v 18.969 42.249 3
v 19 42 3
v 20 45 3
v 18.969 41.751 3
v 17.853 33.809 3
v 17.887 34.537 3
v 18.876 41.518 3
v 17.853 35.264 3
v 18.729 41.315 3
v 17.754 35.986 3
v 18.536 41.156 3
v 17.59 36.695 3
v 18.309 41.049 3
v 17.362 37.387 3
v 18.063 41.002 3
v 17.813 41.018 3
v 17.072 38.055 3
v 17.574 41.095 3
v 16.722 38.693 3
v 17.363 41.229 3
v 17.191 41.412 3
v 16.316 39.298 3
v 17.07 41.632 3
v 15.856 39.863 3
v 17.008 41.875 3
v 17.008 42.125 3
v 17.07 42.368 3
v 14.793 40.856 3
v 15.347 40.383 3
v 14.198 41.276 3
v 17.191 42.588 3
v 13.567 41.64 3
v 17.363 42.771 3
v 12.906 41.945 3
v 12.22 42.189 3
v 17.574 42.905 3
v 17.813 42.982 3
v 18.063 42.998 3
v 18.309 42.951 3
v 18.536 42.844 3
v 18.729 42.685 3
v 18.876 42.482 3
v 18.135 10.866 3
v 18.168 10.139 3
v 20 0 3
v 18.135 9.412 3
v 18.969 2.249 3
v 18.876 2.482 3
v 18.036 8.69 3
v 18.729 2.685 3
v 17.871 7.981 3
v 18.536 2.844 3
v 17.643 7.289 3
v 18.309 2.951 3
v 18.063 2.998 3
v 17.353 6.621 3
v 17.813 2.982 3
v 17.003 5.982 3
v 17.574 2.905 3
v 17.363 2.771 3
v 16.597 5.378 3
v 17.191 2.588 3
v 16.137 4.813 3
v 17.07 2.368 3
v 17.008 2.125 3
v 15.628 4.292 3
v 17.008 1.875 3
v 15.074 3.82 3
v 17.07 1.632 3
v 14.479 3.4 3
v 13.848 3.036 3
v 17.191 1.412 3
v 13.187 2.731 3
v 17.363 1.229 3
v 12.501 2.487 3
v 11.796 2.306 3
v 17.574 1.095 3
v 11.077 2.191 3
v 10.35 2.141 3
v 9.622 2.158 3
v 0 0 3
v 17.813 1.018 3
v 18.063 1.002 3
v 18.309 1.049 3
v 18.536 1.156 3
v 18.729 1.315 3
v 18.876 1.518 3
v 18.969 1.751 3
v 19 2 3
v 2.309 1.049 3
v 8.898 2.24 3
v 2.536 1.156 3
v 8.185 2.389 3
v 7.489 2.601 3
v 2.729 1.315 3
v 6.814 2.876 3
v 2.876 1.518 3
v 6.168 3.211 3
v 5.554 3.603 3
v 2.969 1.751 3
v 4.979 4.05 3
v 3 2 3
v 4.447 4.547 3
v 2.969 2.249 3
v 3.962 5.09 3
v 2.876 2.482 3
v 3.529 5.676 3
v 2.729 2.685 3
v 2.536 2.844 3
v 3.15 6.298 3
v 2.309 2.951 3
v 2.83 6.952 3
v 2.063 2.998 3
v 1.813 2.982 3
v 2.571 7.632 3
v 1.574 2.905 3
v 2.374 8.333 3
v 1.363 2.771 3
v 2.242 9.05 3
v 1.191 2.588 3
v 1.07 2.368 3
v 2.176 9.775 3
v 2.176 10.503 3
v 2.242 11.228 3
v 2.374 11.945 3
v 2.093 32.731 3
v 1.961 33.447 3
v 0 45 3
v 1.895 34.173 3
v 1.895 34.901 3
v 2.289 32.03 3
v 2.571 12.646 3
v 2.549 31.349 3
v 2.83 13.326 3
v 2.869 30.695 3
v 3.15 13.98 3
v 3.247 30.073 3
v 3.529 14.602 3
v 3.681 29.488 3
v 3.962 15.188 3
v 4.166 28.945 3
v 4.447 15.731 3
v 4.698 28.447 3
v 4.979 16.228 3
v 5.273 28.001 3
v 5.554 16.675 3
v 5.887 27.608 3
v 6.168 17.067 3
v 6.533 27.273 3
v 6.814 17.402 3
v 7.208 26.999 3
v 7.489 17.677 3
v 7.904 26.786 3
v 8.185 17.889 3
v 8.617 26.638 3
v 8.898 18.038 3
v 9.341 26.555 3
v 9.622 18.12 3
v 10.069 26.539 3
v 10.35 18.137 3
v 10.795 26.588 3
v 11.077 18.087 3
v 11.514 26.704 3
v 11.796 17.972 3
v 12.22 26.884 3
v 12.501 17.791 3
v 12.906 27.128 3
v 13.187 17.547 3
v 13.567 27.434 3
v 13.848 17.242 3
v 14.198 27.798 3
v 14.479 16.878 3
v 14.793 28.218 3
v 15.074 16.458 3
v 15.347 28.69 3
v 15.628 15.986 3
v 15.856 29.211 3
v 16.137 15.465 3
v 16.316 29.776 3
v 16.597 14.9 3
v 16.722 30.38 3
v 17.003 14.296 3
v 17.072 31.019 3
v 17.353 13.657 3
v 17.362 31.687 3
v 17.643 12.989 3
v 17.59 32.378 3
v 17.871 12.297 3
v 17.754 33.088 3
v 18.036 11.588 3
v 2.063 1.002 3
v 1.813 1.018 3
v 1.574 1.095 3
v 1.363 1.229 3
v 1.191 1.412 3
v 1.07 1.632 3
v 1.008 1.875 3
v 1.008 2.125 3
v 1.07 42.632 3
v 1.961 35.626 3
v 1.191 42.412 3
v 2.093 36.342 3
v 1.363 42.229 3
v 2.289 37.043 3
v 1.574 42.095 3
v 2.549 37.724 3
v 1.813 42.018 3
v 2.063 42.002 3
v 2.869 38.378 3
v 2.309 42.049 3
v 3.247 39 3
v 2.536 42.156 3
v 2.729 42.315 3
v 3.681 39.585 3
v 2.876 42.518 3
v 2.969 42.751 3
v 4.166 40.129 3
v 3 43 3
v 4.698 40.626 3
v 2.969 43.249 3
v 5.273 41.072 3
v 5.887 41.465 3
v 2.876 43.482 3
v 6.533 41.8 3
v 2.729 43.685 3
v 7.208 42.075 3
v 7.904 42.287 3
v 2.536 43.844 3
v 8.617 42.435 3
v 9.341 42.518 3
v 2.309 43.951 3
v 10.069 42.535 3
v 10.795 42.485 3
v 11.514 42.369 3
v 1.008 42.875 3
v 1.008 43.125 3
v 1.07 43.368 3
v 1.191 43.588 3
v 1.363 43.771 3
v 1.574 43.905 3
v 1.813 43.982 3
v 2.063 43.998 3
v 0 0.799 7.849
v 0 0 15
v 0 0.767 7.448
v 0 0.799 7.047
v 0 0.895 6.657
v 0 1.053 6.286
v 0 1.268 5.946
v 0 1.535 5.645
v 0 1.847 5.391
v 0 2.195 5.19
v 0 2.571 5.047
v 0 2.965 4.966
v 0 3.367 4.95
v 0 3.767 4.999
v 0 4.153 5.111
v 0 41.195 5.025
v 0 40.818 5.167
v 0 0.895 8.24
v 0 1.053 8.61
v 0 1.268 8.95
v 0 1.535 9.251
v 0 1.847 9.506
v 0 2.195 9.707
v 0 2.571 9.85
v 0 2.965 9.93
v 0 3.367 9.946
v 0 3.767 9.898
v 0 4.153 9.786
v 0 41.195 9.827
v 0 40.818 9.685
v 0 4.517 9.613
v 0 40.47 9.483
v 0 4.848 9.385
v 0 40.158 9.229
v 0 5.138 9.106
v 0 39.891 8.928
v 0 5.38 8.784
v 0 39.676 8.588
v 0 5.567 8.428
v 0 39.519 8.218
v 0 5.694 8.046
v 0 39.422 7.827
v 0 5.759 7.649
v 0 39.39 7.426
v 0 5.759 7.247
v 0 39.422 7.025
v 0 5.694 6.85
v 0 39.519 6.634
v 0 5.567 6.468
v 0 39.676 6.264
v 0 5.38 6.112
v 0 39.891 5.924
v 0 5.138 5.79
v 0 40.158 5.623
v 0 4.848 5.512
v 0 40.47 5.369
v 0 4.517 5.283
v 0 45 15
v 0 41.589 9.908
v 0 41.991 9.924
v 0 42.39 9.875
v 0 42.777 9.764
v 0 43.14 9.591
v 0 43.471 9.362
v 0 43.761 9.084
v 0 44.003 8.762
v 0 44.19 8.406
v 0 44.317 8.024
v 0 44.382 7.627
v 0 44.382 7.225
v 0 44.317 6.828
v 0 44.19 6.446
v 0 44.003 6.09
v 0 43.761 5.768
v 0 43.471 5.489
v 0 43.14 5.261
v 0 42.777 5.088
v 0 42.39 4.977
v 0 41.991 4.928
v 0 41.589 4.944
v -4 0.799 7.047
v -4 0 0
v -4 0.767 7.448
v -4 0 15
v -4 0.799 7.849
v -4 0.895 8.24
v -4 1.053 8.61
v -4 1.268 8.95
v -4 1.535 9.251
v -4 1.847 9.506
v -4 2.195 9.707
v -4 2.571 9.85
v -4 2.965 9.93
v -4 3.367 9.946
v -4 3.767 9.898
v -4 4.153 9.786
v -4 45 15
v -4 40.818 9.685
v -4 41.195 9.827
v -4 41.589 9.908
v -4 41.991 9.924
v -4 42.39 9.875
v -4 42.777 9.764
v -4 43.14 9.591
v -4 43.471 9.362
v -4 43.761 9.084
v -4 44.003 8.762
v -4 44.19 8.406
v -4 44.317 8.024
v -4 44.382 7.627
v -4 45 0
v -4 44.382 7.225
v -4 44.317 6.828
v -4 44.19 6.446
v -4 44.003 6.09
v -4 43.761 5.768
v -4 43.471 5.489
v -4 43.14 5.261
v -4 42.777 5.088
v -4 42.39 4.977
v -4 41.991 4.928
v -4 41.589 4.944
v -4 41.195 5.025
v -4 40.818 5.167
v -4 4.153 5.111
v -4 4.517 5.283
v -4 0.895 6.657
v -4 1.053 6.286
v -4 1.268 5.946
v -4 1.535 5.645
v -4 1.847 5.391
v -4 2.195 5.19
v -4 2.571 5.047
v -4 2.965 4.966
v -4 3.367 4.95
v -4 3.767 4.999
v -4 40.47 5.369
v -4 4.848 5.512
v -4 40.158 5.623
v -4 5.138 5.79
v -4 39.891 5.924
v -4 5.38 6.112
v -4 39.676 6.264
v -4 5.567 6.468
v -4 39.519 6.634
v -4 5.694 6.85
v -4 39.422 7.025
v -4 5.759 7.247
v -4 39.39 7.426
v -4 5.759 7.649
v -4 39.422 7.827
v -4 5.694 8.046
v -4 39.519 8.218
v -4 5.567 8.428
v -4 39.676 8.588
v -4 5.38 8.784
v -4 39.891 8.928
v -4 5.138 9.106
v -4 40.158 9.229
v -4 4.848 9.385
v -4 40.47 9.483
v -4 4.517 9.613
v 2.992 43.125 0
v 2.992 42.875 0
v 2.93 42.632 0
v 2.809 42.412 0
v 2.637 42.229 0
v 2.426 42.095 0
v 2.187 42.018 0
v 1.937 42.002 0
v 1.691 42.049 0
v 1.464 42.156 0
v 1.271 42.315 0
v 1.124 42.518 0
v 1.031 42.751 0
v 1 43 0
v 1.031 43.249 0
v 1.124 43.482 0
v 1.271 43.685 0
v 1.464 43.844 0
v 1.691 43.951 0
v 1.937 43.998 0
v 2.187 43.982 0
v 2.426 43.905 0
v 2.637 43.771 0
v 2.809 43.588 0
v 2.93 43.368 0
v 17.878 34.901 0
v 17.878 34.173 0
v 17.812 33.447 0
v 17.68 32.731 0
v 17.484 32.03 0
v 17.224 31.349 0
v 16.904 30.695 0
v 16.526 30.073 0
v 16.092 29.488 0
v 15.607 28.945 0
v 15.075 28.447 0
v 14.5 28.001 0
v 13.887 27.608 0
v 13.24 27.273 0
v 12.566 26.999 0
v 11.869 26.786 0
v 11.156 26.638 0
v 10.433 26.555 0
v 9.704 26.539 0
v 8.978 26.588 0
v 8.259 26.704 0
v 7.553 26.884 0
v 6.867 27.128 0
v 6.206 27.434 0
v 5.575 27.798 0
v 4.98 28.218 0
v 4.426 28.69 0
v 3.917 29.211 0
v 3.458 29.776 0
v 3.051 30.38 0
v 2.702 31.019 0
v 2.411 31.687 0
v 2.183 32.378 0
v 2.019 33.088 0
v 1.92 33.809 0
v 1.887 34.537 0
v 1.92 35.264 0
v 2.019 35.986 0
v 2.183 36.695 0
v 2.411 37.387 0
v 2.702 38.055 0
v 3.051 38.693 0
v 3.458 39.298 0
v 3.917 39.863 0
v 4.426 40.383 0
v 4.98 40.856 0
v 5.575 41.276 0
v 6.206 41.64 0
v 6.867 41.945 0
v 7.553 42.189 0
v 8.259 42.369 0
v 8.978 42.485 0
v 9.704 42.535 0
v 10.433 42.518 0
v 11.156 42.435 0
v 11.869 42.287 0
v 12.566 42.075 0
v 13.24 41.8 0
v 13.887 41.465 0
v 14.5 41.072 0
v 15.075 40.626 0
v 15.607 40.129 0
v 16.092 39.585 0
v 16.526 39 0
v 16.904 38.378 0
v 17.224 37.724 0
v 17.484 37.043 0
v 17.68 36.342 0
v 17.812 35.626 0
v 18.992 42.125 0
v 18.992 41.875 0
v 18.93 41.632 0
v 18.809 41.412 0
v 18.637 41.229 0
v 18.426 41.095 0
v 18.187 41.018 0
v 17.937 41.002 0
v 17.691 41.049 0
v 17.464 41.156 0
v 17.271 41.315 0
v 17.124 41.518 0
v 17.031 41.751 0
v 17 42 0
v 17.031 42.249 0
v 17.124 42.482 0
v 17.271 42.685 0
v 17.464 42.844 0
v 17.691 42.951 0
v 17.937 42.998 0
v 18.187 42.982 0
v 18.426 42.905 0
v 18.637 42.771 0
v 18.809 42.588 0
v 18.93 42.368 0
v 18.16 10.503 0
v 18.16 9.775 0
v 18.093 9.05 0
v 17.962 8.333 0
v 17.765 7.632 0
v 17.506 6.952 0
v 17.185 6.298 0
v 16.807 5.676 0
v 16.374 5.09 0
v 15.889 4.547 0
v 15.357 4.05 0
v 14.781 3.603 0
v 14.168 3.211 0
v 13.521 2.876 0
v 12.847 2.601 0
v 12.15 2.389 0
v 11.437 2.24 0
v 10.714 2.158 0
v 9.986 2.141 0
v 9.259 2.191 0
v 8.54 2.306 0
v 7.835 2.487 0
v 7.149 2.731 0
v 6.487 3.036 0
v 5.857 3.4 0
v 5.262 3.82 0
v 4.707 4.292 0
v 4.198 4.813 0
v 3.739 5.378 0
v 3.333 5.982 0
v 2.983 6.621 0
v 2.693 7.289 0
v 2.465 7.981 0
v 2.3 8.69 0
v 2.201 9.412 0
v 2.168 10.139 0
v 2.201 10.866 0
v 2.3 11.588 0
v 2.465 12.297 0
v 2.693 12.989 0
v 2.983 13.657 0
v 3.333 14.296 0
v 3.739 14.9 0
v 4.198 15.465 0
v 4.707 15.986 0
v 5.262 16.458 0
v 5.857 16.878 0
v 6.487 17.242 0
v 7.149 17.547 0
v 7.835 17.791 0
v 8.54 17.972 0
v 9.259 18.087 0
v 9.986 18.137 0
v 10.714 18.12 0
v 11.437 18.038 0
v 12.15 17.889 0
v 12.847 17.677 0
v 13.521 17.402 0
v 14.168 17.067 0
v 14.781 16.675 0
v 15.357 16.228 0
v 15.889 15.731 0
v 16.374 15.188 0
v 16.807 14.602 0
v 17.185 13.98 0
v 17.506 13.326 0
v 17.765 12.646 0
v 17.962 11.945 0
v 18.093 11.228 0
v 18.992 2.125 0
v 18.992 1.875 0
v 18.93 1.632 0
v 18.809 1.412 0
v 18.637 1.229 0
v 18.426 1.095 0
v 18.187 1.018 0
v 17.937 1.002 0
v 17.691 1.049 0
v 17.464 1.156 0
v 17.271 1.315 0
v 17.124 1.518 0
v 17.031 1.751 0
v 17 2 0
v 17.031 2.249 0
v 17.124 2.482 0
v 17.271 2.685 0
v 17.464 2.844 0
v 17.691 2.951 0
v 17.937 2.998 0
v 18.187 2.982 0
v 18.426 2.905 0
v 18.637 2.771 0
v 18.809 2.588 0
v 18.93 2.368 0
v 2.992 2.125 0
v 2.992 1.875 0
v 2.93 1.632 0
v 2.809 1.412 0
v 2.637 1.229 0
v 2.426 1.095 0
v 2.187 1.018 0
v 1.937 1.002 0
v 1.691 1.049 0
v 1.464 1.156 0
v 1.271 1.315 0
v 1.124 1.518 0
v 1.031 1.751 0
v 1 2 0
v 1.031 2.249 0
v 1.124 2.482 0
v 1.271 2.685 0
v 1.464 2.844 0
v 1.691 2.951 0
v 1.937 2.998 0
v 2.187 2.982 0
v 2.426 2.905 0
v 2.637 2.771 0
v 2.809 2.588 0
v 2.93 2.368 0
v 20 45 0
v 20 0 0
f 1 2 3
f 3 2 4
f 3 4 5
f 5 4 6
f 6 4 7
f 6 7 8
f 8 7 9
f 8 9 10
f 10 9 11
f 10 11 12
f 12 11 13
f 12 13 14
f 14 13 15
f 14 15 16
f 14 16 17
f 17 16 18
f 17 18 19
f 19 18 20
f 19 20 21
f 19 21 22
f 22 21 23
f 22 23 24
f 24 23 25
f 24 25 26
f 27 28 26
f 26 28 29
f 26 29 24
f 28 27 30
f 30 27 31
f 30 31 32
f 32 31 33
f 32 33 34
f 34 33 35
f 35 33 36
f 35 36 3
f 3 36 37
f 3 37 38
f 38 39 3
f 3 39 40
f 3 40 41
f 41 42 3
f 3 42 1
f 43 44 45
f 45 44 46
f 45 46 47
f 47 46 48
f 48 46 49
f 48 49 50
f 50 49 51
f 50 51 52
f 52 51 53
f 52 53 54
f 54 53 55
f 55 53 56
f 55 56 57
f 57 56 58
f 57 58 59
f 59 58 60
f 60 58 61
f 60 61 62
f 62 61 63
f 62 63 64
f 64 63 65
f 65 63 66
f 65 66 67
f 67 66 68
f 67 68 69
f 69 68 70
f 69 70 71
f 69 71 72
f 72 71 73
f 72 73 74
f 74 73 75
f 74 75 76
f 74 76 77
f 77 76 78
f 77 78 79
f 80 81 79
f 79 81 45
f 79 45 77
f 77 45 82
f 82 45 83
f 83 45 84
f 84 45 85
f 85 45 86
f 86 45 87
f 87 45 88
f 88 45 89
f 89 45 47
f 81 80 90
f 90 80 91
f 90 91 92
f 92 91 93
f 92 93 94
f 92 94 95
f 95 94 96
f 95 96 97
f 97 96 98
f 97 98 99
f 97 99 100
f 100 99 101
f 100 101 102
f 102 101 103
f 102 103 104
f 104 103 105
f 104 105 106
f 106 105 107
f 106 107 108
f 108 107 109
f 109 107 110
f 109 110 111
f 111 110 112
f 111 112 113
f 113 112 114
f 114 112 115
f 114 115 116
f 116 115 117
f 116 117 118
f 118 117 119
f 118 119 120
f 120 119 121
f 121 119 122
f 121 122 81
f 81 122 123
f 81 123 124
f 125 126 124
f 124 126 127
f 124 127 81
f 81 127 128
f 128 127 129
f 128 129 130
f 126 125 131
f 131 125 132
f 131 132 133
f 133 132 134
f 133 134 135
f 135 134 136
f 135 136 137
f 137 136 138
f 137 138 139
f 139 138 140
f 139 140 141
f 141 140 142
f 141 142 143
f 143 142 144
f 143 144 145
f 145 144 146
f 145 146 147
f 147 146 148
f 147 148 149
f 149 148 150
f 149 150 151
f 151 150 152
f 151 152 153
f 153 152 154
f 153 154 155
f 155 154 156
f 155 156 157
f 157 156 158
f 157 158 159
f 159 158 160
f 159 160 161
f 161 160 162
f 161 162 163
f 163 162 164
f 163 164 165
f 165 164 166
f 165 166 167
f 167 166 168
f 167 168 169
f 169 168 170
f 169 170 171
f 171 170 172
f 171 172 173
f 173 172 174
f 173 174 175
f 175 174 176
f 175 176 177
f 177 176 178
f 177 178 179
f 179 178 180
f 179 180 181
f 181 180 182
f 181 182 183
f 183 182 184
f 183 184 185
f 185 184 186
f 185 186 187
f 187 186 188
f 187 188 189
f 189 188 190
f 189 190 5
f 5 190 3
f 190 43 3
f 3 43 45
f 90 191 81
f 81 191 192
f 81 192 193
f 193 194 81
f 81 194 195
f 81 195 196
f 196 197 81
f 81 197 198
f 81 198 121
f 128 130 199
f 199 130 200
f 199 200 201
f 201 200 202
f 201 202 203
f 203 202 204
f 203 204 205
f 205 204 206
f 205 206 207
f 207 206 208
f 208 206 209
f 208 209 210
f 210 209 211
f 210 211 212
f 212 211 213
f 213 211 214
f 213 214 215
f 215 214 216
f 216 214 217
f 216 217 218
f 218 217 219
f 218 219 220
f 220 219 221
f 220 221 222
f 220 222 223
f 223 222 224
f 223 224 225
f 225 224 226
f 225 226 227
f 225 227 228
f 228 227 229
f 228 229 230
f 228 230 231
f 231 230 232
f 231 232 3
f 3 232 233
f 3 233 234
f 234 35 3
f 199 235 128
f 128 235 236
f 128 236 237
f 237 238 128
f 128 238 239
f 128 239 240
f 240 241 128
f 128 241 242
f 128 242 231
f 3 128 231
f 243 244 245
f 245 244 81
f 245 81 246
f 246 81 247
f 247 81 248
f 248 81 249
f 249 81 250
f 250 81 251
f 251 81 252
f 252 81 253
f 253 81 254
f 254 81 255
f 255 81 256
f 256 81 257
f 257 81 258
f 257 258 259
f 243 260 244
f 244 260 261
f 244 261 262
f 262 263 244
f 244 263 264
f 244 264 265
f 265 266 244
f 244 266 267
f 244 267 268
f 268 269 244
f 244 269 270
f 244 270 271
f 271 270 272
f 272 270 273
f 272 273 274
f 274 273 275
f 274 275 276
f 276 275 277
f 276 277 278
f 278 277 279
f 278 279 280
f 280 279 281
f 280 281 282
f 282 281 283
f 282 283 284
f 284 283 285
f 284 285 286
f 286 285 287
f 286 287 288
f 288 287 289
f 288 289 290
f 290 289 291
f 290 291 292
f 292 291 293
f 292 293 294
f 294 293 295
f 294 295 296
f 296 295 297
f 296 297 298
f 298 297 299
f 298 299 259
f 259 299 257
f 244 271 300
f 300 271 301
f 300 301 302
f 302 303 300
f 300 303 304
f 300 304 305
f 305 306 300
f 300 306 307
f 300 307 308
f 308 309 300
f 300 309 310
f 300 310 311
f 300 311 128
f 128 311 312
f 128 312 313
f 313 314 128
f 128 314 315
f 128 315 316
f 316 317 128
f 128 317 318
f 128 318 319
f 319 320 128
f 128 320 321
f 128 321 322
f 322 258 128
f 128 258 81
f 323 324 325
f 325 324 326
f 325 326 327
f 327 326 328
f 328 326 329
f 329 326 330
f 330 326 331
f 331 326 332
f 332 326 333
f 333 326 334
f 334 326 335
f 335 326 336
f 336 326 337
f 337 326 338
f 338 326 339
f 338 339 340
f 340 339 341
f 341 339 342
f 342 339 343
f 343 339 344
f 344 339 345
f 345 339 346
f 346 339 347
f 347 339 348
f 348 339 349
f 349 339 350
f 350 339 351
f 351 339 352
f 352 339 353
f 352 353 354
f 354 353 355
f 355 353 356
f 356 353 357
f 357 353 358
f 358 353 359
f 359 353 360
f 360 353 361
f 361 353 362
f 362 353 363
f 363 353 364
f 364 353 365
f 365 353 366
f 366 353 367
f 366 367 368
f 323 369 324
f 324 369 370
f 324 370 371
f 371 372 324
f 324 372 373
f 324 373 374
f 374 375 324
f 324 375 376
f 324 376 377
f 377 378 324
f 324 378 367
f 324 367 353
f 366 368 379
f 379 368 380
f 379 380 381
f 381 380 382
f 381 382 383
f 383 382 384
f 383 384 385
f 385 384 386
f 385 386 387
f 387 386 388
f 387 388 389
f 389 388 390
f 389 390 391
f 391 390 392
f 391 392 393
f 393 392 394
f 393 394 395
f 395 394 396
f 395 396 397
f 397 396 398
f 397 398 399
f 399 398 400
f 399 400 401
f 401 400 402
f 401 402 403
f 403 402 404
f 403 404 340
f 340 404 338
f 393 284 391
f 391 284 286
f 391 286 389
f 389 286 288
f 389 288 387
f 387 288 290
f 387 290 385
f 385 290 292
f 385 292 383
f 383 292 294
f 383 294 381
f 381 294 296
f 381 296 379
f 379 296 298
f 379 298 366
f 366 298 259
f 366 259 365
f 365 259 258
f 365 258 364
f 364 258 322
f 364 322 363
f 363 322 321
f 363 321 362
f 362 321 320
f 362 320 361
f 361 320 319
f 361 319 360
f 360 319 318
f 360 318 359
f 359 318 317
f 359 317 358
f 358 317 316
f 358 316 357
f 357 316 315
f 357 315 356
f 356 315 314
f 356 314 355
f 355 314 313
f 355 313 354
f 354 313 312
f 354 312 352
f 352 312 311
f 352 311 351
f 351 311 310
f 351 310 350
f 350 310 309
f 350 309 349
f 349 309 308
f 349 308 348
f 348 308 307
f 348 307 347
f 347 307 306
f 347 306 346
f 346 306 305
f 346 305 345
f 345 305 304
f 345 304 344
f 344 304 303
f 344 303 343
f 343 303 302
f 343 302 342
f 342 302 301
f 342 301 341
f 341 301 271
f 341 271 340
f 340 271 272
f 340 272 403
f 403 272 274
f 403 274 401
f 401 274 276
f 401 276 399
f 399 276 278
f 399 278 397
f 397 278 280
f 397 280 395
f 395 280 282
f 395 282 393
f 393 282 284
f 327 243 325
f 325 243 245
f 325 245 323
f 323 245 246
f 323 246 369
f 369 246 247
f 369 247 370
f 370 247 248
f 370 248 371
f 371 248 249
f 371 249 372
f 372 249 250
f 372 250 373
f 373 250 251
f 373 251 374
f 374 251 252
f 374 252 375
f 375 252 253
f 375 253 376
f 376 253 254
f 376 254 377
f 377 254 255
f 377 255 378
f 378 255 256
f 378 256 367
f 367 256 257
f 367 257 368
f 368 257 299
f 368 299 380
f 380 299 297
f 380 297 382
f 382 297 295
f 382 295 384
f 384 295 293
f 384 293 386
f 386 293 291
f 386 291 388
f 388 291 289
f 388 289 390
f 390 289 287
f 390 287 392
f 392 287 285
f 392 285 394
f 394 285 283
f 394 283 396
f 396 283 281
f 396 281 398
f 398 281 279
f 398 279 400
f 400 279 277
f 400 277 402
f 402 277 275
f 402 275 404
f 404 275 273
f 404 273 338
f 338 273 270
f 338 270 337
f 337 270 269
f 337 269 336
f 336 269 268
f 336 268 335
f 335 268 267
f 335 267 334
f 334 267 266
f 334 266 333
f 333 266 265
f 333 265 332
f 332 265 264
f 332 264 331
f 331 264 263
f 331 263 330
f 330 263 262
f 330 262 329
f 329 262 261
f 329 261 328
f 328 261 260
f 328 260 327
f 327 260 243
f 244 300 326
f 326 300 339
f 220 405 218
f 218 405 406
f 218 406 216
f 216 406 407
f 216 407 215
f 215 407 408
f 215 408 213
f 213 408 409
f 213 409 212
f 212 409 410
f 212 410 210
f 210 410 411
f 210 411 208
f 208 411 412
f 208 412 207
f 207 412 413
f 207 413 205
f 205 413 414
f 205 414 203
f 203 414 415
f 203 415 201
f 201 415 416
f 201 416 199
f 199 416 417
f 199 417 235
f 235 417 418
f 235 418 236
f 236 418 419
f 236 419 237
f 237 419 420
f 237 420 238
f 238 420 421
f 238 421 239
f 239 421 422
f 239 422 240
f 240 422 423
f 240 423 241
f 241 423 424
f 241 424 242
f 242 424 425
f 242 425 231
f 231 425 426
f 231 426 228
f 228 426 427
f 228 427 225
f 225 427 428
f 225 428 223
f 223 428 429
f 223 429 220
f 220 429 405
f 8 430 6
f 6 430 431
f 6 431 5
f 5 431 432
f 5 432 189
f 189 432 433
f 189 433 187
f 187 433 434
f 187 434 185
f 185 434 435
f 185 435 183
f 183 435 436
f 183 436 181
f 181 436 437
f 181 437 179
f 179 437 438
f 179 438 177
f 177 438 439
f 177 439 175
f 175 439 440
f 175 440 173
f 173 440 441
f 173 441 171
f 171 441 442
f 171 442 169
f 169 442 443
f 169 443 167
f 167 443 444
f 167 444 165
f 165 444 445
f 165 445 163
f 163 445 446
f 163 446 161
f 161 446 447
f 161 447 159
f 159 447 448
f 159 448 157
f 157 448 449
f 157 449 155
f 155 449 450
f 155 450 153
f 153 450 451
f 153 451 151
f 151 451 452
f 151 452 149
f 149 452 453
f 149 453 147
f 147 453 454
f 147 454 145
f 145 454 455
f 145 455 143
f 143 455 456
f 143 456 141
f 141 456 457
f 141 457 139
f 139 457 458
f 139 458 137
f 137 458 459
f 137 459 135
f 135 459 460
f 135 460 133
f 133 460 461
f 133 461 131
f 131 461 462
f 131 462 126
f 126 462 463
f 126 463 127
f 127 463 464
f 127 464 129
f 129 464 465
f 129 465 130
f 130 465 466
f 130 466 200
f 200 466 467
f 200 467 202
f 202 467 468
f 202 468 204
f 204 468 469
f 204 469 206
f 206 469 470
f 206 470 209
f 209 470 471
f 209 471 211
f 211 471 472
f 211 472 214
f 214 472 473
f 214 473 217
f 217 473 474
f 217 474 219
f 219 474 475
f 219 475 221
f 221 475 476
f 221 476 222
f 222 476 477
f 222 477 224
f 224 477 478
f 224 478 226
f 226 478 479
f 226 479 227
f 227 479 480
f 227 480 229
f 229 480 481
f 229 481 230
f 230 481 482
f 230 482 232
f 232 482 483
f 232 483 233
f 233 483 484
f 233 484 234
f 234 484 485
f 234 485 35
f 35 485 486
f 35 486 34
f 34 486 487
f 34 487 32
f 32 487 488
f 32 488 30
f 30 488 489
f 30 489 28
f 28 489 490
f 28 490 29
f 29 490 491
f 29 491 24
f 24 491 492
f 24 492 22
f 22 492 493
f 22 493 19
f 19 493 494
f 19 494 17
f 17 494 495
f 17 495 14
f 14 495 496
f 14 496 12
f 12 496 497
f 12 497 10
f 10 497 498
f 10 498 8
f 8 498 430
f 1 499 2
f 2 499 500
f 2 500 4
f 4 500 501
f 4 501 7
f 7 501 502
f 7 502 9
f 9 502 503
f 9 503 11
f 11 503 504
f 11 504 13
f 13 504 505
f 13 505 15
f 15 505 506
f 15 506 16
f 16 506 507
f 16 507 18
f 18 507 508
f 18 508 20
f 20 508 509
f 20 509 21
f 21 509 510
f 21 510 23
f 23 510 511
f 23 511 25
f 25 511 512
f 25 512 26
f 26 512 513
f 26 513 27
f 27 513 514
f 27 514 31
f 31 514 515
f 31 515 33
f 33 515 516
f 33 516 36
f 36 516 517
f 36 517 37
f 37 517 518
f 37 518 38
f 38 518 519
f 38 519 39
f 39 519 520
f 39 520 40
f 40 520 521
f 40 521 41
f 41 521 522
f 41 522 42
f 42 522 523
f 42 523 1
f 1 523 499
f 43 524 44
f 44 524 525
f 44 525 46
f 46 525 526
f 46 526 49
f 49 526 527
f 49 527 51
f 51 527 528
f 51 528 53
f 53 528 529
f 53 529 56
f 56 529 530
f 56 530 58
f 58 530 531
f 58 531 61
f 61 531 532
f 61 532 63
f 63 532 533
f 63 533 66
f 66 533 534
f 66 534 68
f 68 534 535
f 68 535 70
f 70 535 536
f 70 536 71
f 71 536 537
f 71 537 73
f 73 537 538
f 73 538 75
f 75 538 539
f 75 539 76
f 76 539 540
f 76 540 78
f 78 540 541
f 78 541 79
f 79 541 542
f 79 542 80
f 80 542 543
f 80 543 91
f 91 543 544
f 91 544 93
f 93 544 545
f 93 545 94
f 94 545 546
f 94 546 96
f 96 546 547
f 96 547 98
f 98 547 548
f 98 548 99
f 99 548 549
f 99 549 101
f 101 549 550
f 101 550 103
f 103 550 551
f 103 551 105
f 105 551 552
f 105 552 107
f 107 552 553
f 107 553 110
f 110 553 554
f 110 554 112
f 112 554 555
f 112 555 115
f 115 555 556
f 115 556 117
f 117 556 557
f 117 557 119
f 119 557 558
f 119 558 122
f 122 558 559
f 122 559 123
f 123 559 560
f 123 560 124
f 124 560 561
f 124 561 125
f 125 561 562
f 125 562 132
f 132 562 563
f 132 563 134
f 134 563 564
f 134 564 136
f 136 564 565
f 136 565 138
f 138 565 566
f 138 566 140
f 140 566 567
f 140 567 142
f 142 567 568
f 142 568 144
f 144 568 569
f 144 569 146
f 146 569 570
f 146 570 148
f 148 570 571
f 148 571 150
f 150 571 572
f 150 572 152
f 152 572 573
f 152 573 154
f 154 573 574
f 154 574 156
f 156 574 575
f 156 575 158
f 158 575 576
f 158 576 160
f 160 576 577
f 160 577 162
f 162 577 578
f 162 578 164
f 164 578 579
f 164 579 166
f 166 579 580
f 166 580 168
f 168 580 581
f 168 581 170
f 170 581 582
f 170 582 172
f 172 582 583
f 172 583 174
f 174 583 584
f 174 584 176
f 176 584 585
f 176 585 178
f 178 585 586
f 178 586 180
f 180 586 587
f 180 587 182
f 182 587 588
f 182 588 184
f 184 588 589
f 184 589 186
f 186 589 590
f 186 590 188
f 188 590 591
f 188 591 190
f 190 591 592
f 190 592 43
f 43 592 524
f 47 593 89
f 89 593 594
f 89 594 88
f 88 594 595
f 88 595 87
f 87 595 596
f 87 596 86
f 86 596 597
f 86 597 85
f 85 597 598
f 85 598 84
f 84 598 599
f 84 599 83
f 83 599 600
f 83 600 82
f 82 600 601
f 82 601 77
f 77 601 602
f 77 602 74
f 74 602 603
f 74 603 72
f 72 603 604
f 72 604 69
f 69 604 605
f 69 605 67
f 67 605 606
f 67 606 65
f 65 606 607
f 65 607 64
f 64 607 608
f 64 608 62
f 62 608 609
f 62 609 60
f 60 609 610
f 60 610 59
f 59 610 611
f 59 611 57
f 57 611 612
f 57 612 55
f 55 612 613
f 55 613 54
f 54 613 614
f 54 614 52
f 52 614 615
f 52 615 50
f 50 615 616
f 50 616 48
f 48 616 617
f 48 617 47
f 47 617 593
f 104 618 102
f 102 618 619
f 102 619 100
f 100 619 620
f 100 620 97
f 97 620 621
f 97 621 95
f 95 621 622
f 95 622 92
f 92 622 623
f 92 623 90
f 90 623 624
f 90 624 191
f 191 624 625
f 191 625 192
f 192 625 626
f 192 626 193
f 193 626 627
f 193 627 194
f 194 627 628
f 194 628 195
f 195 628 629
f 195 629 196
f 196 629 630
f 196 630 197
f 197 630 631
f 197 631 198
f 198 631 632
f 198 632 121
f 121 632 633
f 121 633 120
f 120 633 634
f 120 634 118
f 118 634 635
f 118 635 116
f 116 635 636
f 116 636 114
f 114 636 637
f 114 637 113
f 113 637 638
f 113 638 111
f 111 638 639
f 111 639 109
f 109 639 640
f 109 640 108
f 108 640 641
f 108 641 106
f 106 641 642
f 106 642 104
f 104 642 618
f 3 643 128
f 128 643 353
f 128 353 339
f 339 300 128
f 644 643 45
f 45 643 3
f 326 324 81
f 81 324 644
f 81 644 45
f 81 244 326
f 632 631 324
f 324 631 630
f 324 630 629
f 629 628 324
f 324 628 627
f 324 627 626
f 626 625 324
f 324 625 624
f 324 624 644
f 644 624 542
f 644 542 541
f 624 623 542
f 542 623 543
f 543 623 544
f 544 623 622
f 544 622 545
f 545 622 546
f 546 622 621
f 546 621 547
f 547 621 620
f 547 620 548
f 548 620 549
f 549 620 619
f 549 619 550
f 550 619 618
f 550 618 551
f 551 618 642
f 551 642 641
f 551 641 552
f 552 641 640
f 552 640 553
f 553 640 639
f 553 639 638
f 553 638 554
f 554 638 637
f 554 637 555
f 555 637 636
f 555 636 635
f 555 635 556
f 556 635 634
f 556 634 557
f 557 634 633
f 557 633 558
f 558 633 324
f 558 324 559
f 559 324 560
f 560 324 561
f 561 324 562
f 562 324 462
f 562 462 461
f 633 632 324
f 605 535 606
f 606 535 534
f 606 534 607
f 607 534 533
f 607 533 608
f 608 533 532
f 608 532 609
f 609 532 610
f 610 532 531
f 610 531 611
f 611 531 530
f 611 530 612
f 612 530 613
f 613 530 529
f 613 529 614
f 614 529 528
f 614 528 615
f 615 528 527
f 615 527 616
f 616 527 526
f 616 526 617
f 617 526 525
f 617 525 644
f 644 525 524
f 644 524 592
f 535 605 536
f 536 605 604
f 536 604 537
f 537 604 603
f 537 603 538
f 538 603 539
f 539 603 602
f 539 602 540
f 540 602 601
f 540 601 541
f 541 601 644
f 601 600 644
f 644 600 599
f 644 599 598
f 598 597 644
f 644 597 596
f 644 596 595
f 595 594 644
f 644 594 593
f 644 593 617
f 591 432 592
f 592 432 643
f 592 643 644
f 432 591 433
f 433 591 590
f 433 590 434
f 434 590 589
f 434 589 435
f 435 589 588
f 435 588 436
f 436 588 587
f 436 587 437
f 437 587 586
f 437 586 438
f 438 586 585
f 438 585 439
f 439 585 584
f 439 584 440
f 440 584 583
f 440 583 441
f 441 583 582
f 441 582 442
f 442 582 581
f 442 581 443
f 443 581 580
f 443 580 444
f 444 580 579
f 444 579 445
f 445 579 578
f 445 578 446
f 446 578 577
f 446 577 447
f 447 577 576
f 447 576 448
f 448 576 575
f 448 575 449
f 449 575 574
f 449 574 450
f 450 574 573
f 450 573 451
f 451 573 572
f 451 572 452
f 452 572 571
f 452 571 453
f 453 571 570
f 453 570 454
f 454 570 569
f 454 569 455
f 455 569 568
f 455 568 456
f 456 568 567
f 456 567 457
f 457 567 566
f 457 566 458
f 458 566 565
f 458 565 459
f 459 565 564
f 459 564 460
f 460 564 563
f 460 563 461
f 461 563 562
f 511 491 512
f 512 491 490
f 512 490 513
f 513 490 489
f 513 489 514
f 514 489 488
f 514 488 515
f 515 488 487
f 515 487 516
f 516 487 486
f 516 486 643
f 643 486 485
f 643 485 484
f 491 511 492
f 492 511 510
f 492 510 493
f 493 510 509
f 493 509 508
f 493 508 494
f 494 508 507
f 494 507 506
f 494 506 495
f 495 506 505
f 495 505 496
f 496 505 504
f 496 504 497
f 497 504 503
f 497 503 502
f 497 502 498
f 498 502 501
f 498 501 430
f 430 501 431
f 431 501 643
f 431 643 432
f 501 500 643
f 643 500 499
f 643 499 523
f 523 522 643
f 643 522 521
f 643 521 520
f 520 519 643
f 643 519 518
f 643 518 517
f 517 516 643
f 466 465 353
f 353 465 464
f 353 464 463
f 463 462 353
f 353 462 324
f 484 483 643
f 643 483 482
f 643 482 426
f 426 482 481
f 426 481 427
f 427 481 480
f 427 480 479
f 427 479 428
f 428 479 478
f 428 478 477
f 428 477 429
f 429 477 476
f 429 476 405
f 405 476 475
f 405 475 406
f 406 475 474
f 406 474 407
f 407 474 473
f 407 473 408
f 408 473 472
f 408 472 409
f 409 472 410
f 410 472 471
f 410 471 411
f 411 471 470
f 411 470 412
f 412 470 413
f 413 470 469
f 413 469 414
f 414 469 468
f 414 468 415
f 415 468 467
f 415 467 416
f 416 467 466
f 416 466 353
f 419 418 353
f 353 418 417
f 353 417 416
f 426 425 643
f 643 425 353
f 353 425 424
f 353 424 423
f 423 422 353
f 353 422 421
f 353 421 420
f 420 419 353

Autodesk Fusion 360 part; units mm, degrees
sketch "Sketch1" plane through (0, 0, 0) normal (0, 0, 1) x (1, 0, 0)
  line L0 (0, 0) -> (20, 0)
  line L1 (20, 0) -> (20, 45)
  line L2 (20, 45) -> (0, 45)
  line L3 (0, 45) -> (0, 0)
  circle A0 centre (9.8866, 34.5367) radius 8
  circle A1 centre (10.1679, 10.139) radius 8
  circle A2 centre (2, 43) radius 1
  circle A3 centre (18, 42) radius 1
  circle A4 centre (18, 2) radius 1
  circle A5 centre (2, 2) radius 1
  point P0 (2, 43)
  dimension "d1" = 20
  dimension "d2" = 45
  dimension "d3" = 16
  dimension "d4" = 16
extrude "Extrude1" add sketch "Sketch1" along normal blind 2
sketch "Sketch2" plane through (0, 0, 0) normal (1, 0, 0) x (0, 1, 0)
  line L0 (0, 0) -> (45, 0)
  line L1 (45, 0) -> (45, 15)
  line L2 (45, 15) -> (0, 15)
  line L3 (0, 15) -> (0, 0)
  circle A0 centre (3.2668, 7.4482) radius 2.5
  circle A1 centre (41.8901, 7.426) radius 2.5
  dimension "d7" = 5
  dimension "d8" = 5
extrude "Extrude2" add sketch "Sketch2" against normal blind 1
sketch "Sketch3" plane through (0, 0, 2) normal (0, 0, 1) x (-1, 0, 0)
  circle A0 centre (-2, -2) radius 1
  circle A1 centre (-18, -2) radius 1
  circle A2 centre (-10.1679, -10.139) radius 8
  circle A3 centre (-18, -42) radius 1
  circle A4 centre (-9.8866, -34.5367) radius 8
  circle A5 centre (-2, -43) radius 1
  line L0 (0, -45) -> (0, 0)
  line L1 (0, 0) -> (-20, 0)
  line L2 (-20, 0) -> (-20, -45)
  line L3 (-20, -45) -> (0, -45)
extrude "Extrude3" add 1 faces at (-1, 16.6085, 13.1343) along direction (-1, 0, 0) blind 3
extrude "Extrude4" add sketch "Sketch3" along normal blind 1
